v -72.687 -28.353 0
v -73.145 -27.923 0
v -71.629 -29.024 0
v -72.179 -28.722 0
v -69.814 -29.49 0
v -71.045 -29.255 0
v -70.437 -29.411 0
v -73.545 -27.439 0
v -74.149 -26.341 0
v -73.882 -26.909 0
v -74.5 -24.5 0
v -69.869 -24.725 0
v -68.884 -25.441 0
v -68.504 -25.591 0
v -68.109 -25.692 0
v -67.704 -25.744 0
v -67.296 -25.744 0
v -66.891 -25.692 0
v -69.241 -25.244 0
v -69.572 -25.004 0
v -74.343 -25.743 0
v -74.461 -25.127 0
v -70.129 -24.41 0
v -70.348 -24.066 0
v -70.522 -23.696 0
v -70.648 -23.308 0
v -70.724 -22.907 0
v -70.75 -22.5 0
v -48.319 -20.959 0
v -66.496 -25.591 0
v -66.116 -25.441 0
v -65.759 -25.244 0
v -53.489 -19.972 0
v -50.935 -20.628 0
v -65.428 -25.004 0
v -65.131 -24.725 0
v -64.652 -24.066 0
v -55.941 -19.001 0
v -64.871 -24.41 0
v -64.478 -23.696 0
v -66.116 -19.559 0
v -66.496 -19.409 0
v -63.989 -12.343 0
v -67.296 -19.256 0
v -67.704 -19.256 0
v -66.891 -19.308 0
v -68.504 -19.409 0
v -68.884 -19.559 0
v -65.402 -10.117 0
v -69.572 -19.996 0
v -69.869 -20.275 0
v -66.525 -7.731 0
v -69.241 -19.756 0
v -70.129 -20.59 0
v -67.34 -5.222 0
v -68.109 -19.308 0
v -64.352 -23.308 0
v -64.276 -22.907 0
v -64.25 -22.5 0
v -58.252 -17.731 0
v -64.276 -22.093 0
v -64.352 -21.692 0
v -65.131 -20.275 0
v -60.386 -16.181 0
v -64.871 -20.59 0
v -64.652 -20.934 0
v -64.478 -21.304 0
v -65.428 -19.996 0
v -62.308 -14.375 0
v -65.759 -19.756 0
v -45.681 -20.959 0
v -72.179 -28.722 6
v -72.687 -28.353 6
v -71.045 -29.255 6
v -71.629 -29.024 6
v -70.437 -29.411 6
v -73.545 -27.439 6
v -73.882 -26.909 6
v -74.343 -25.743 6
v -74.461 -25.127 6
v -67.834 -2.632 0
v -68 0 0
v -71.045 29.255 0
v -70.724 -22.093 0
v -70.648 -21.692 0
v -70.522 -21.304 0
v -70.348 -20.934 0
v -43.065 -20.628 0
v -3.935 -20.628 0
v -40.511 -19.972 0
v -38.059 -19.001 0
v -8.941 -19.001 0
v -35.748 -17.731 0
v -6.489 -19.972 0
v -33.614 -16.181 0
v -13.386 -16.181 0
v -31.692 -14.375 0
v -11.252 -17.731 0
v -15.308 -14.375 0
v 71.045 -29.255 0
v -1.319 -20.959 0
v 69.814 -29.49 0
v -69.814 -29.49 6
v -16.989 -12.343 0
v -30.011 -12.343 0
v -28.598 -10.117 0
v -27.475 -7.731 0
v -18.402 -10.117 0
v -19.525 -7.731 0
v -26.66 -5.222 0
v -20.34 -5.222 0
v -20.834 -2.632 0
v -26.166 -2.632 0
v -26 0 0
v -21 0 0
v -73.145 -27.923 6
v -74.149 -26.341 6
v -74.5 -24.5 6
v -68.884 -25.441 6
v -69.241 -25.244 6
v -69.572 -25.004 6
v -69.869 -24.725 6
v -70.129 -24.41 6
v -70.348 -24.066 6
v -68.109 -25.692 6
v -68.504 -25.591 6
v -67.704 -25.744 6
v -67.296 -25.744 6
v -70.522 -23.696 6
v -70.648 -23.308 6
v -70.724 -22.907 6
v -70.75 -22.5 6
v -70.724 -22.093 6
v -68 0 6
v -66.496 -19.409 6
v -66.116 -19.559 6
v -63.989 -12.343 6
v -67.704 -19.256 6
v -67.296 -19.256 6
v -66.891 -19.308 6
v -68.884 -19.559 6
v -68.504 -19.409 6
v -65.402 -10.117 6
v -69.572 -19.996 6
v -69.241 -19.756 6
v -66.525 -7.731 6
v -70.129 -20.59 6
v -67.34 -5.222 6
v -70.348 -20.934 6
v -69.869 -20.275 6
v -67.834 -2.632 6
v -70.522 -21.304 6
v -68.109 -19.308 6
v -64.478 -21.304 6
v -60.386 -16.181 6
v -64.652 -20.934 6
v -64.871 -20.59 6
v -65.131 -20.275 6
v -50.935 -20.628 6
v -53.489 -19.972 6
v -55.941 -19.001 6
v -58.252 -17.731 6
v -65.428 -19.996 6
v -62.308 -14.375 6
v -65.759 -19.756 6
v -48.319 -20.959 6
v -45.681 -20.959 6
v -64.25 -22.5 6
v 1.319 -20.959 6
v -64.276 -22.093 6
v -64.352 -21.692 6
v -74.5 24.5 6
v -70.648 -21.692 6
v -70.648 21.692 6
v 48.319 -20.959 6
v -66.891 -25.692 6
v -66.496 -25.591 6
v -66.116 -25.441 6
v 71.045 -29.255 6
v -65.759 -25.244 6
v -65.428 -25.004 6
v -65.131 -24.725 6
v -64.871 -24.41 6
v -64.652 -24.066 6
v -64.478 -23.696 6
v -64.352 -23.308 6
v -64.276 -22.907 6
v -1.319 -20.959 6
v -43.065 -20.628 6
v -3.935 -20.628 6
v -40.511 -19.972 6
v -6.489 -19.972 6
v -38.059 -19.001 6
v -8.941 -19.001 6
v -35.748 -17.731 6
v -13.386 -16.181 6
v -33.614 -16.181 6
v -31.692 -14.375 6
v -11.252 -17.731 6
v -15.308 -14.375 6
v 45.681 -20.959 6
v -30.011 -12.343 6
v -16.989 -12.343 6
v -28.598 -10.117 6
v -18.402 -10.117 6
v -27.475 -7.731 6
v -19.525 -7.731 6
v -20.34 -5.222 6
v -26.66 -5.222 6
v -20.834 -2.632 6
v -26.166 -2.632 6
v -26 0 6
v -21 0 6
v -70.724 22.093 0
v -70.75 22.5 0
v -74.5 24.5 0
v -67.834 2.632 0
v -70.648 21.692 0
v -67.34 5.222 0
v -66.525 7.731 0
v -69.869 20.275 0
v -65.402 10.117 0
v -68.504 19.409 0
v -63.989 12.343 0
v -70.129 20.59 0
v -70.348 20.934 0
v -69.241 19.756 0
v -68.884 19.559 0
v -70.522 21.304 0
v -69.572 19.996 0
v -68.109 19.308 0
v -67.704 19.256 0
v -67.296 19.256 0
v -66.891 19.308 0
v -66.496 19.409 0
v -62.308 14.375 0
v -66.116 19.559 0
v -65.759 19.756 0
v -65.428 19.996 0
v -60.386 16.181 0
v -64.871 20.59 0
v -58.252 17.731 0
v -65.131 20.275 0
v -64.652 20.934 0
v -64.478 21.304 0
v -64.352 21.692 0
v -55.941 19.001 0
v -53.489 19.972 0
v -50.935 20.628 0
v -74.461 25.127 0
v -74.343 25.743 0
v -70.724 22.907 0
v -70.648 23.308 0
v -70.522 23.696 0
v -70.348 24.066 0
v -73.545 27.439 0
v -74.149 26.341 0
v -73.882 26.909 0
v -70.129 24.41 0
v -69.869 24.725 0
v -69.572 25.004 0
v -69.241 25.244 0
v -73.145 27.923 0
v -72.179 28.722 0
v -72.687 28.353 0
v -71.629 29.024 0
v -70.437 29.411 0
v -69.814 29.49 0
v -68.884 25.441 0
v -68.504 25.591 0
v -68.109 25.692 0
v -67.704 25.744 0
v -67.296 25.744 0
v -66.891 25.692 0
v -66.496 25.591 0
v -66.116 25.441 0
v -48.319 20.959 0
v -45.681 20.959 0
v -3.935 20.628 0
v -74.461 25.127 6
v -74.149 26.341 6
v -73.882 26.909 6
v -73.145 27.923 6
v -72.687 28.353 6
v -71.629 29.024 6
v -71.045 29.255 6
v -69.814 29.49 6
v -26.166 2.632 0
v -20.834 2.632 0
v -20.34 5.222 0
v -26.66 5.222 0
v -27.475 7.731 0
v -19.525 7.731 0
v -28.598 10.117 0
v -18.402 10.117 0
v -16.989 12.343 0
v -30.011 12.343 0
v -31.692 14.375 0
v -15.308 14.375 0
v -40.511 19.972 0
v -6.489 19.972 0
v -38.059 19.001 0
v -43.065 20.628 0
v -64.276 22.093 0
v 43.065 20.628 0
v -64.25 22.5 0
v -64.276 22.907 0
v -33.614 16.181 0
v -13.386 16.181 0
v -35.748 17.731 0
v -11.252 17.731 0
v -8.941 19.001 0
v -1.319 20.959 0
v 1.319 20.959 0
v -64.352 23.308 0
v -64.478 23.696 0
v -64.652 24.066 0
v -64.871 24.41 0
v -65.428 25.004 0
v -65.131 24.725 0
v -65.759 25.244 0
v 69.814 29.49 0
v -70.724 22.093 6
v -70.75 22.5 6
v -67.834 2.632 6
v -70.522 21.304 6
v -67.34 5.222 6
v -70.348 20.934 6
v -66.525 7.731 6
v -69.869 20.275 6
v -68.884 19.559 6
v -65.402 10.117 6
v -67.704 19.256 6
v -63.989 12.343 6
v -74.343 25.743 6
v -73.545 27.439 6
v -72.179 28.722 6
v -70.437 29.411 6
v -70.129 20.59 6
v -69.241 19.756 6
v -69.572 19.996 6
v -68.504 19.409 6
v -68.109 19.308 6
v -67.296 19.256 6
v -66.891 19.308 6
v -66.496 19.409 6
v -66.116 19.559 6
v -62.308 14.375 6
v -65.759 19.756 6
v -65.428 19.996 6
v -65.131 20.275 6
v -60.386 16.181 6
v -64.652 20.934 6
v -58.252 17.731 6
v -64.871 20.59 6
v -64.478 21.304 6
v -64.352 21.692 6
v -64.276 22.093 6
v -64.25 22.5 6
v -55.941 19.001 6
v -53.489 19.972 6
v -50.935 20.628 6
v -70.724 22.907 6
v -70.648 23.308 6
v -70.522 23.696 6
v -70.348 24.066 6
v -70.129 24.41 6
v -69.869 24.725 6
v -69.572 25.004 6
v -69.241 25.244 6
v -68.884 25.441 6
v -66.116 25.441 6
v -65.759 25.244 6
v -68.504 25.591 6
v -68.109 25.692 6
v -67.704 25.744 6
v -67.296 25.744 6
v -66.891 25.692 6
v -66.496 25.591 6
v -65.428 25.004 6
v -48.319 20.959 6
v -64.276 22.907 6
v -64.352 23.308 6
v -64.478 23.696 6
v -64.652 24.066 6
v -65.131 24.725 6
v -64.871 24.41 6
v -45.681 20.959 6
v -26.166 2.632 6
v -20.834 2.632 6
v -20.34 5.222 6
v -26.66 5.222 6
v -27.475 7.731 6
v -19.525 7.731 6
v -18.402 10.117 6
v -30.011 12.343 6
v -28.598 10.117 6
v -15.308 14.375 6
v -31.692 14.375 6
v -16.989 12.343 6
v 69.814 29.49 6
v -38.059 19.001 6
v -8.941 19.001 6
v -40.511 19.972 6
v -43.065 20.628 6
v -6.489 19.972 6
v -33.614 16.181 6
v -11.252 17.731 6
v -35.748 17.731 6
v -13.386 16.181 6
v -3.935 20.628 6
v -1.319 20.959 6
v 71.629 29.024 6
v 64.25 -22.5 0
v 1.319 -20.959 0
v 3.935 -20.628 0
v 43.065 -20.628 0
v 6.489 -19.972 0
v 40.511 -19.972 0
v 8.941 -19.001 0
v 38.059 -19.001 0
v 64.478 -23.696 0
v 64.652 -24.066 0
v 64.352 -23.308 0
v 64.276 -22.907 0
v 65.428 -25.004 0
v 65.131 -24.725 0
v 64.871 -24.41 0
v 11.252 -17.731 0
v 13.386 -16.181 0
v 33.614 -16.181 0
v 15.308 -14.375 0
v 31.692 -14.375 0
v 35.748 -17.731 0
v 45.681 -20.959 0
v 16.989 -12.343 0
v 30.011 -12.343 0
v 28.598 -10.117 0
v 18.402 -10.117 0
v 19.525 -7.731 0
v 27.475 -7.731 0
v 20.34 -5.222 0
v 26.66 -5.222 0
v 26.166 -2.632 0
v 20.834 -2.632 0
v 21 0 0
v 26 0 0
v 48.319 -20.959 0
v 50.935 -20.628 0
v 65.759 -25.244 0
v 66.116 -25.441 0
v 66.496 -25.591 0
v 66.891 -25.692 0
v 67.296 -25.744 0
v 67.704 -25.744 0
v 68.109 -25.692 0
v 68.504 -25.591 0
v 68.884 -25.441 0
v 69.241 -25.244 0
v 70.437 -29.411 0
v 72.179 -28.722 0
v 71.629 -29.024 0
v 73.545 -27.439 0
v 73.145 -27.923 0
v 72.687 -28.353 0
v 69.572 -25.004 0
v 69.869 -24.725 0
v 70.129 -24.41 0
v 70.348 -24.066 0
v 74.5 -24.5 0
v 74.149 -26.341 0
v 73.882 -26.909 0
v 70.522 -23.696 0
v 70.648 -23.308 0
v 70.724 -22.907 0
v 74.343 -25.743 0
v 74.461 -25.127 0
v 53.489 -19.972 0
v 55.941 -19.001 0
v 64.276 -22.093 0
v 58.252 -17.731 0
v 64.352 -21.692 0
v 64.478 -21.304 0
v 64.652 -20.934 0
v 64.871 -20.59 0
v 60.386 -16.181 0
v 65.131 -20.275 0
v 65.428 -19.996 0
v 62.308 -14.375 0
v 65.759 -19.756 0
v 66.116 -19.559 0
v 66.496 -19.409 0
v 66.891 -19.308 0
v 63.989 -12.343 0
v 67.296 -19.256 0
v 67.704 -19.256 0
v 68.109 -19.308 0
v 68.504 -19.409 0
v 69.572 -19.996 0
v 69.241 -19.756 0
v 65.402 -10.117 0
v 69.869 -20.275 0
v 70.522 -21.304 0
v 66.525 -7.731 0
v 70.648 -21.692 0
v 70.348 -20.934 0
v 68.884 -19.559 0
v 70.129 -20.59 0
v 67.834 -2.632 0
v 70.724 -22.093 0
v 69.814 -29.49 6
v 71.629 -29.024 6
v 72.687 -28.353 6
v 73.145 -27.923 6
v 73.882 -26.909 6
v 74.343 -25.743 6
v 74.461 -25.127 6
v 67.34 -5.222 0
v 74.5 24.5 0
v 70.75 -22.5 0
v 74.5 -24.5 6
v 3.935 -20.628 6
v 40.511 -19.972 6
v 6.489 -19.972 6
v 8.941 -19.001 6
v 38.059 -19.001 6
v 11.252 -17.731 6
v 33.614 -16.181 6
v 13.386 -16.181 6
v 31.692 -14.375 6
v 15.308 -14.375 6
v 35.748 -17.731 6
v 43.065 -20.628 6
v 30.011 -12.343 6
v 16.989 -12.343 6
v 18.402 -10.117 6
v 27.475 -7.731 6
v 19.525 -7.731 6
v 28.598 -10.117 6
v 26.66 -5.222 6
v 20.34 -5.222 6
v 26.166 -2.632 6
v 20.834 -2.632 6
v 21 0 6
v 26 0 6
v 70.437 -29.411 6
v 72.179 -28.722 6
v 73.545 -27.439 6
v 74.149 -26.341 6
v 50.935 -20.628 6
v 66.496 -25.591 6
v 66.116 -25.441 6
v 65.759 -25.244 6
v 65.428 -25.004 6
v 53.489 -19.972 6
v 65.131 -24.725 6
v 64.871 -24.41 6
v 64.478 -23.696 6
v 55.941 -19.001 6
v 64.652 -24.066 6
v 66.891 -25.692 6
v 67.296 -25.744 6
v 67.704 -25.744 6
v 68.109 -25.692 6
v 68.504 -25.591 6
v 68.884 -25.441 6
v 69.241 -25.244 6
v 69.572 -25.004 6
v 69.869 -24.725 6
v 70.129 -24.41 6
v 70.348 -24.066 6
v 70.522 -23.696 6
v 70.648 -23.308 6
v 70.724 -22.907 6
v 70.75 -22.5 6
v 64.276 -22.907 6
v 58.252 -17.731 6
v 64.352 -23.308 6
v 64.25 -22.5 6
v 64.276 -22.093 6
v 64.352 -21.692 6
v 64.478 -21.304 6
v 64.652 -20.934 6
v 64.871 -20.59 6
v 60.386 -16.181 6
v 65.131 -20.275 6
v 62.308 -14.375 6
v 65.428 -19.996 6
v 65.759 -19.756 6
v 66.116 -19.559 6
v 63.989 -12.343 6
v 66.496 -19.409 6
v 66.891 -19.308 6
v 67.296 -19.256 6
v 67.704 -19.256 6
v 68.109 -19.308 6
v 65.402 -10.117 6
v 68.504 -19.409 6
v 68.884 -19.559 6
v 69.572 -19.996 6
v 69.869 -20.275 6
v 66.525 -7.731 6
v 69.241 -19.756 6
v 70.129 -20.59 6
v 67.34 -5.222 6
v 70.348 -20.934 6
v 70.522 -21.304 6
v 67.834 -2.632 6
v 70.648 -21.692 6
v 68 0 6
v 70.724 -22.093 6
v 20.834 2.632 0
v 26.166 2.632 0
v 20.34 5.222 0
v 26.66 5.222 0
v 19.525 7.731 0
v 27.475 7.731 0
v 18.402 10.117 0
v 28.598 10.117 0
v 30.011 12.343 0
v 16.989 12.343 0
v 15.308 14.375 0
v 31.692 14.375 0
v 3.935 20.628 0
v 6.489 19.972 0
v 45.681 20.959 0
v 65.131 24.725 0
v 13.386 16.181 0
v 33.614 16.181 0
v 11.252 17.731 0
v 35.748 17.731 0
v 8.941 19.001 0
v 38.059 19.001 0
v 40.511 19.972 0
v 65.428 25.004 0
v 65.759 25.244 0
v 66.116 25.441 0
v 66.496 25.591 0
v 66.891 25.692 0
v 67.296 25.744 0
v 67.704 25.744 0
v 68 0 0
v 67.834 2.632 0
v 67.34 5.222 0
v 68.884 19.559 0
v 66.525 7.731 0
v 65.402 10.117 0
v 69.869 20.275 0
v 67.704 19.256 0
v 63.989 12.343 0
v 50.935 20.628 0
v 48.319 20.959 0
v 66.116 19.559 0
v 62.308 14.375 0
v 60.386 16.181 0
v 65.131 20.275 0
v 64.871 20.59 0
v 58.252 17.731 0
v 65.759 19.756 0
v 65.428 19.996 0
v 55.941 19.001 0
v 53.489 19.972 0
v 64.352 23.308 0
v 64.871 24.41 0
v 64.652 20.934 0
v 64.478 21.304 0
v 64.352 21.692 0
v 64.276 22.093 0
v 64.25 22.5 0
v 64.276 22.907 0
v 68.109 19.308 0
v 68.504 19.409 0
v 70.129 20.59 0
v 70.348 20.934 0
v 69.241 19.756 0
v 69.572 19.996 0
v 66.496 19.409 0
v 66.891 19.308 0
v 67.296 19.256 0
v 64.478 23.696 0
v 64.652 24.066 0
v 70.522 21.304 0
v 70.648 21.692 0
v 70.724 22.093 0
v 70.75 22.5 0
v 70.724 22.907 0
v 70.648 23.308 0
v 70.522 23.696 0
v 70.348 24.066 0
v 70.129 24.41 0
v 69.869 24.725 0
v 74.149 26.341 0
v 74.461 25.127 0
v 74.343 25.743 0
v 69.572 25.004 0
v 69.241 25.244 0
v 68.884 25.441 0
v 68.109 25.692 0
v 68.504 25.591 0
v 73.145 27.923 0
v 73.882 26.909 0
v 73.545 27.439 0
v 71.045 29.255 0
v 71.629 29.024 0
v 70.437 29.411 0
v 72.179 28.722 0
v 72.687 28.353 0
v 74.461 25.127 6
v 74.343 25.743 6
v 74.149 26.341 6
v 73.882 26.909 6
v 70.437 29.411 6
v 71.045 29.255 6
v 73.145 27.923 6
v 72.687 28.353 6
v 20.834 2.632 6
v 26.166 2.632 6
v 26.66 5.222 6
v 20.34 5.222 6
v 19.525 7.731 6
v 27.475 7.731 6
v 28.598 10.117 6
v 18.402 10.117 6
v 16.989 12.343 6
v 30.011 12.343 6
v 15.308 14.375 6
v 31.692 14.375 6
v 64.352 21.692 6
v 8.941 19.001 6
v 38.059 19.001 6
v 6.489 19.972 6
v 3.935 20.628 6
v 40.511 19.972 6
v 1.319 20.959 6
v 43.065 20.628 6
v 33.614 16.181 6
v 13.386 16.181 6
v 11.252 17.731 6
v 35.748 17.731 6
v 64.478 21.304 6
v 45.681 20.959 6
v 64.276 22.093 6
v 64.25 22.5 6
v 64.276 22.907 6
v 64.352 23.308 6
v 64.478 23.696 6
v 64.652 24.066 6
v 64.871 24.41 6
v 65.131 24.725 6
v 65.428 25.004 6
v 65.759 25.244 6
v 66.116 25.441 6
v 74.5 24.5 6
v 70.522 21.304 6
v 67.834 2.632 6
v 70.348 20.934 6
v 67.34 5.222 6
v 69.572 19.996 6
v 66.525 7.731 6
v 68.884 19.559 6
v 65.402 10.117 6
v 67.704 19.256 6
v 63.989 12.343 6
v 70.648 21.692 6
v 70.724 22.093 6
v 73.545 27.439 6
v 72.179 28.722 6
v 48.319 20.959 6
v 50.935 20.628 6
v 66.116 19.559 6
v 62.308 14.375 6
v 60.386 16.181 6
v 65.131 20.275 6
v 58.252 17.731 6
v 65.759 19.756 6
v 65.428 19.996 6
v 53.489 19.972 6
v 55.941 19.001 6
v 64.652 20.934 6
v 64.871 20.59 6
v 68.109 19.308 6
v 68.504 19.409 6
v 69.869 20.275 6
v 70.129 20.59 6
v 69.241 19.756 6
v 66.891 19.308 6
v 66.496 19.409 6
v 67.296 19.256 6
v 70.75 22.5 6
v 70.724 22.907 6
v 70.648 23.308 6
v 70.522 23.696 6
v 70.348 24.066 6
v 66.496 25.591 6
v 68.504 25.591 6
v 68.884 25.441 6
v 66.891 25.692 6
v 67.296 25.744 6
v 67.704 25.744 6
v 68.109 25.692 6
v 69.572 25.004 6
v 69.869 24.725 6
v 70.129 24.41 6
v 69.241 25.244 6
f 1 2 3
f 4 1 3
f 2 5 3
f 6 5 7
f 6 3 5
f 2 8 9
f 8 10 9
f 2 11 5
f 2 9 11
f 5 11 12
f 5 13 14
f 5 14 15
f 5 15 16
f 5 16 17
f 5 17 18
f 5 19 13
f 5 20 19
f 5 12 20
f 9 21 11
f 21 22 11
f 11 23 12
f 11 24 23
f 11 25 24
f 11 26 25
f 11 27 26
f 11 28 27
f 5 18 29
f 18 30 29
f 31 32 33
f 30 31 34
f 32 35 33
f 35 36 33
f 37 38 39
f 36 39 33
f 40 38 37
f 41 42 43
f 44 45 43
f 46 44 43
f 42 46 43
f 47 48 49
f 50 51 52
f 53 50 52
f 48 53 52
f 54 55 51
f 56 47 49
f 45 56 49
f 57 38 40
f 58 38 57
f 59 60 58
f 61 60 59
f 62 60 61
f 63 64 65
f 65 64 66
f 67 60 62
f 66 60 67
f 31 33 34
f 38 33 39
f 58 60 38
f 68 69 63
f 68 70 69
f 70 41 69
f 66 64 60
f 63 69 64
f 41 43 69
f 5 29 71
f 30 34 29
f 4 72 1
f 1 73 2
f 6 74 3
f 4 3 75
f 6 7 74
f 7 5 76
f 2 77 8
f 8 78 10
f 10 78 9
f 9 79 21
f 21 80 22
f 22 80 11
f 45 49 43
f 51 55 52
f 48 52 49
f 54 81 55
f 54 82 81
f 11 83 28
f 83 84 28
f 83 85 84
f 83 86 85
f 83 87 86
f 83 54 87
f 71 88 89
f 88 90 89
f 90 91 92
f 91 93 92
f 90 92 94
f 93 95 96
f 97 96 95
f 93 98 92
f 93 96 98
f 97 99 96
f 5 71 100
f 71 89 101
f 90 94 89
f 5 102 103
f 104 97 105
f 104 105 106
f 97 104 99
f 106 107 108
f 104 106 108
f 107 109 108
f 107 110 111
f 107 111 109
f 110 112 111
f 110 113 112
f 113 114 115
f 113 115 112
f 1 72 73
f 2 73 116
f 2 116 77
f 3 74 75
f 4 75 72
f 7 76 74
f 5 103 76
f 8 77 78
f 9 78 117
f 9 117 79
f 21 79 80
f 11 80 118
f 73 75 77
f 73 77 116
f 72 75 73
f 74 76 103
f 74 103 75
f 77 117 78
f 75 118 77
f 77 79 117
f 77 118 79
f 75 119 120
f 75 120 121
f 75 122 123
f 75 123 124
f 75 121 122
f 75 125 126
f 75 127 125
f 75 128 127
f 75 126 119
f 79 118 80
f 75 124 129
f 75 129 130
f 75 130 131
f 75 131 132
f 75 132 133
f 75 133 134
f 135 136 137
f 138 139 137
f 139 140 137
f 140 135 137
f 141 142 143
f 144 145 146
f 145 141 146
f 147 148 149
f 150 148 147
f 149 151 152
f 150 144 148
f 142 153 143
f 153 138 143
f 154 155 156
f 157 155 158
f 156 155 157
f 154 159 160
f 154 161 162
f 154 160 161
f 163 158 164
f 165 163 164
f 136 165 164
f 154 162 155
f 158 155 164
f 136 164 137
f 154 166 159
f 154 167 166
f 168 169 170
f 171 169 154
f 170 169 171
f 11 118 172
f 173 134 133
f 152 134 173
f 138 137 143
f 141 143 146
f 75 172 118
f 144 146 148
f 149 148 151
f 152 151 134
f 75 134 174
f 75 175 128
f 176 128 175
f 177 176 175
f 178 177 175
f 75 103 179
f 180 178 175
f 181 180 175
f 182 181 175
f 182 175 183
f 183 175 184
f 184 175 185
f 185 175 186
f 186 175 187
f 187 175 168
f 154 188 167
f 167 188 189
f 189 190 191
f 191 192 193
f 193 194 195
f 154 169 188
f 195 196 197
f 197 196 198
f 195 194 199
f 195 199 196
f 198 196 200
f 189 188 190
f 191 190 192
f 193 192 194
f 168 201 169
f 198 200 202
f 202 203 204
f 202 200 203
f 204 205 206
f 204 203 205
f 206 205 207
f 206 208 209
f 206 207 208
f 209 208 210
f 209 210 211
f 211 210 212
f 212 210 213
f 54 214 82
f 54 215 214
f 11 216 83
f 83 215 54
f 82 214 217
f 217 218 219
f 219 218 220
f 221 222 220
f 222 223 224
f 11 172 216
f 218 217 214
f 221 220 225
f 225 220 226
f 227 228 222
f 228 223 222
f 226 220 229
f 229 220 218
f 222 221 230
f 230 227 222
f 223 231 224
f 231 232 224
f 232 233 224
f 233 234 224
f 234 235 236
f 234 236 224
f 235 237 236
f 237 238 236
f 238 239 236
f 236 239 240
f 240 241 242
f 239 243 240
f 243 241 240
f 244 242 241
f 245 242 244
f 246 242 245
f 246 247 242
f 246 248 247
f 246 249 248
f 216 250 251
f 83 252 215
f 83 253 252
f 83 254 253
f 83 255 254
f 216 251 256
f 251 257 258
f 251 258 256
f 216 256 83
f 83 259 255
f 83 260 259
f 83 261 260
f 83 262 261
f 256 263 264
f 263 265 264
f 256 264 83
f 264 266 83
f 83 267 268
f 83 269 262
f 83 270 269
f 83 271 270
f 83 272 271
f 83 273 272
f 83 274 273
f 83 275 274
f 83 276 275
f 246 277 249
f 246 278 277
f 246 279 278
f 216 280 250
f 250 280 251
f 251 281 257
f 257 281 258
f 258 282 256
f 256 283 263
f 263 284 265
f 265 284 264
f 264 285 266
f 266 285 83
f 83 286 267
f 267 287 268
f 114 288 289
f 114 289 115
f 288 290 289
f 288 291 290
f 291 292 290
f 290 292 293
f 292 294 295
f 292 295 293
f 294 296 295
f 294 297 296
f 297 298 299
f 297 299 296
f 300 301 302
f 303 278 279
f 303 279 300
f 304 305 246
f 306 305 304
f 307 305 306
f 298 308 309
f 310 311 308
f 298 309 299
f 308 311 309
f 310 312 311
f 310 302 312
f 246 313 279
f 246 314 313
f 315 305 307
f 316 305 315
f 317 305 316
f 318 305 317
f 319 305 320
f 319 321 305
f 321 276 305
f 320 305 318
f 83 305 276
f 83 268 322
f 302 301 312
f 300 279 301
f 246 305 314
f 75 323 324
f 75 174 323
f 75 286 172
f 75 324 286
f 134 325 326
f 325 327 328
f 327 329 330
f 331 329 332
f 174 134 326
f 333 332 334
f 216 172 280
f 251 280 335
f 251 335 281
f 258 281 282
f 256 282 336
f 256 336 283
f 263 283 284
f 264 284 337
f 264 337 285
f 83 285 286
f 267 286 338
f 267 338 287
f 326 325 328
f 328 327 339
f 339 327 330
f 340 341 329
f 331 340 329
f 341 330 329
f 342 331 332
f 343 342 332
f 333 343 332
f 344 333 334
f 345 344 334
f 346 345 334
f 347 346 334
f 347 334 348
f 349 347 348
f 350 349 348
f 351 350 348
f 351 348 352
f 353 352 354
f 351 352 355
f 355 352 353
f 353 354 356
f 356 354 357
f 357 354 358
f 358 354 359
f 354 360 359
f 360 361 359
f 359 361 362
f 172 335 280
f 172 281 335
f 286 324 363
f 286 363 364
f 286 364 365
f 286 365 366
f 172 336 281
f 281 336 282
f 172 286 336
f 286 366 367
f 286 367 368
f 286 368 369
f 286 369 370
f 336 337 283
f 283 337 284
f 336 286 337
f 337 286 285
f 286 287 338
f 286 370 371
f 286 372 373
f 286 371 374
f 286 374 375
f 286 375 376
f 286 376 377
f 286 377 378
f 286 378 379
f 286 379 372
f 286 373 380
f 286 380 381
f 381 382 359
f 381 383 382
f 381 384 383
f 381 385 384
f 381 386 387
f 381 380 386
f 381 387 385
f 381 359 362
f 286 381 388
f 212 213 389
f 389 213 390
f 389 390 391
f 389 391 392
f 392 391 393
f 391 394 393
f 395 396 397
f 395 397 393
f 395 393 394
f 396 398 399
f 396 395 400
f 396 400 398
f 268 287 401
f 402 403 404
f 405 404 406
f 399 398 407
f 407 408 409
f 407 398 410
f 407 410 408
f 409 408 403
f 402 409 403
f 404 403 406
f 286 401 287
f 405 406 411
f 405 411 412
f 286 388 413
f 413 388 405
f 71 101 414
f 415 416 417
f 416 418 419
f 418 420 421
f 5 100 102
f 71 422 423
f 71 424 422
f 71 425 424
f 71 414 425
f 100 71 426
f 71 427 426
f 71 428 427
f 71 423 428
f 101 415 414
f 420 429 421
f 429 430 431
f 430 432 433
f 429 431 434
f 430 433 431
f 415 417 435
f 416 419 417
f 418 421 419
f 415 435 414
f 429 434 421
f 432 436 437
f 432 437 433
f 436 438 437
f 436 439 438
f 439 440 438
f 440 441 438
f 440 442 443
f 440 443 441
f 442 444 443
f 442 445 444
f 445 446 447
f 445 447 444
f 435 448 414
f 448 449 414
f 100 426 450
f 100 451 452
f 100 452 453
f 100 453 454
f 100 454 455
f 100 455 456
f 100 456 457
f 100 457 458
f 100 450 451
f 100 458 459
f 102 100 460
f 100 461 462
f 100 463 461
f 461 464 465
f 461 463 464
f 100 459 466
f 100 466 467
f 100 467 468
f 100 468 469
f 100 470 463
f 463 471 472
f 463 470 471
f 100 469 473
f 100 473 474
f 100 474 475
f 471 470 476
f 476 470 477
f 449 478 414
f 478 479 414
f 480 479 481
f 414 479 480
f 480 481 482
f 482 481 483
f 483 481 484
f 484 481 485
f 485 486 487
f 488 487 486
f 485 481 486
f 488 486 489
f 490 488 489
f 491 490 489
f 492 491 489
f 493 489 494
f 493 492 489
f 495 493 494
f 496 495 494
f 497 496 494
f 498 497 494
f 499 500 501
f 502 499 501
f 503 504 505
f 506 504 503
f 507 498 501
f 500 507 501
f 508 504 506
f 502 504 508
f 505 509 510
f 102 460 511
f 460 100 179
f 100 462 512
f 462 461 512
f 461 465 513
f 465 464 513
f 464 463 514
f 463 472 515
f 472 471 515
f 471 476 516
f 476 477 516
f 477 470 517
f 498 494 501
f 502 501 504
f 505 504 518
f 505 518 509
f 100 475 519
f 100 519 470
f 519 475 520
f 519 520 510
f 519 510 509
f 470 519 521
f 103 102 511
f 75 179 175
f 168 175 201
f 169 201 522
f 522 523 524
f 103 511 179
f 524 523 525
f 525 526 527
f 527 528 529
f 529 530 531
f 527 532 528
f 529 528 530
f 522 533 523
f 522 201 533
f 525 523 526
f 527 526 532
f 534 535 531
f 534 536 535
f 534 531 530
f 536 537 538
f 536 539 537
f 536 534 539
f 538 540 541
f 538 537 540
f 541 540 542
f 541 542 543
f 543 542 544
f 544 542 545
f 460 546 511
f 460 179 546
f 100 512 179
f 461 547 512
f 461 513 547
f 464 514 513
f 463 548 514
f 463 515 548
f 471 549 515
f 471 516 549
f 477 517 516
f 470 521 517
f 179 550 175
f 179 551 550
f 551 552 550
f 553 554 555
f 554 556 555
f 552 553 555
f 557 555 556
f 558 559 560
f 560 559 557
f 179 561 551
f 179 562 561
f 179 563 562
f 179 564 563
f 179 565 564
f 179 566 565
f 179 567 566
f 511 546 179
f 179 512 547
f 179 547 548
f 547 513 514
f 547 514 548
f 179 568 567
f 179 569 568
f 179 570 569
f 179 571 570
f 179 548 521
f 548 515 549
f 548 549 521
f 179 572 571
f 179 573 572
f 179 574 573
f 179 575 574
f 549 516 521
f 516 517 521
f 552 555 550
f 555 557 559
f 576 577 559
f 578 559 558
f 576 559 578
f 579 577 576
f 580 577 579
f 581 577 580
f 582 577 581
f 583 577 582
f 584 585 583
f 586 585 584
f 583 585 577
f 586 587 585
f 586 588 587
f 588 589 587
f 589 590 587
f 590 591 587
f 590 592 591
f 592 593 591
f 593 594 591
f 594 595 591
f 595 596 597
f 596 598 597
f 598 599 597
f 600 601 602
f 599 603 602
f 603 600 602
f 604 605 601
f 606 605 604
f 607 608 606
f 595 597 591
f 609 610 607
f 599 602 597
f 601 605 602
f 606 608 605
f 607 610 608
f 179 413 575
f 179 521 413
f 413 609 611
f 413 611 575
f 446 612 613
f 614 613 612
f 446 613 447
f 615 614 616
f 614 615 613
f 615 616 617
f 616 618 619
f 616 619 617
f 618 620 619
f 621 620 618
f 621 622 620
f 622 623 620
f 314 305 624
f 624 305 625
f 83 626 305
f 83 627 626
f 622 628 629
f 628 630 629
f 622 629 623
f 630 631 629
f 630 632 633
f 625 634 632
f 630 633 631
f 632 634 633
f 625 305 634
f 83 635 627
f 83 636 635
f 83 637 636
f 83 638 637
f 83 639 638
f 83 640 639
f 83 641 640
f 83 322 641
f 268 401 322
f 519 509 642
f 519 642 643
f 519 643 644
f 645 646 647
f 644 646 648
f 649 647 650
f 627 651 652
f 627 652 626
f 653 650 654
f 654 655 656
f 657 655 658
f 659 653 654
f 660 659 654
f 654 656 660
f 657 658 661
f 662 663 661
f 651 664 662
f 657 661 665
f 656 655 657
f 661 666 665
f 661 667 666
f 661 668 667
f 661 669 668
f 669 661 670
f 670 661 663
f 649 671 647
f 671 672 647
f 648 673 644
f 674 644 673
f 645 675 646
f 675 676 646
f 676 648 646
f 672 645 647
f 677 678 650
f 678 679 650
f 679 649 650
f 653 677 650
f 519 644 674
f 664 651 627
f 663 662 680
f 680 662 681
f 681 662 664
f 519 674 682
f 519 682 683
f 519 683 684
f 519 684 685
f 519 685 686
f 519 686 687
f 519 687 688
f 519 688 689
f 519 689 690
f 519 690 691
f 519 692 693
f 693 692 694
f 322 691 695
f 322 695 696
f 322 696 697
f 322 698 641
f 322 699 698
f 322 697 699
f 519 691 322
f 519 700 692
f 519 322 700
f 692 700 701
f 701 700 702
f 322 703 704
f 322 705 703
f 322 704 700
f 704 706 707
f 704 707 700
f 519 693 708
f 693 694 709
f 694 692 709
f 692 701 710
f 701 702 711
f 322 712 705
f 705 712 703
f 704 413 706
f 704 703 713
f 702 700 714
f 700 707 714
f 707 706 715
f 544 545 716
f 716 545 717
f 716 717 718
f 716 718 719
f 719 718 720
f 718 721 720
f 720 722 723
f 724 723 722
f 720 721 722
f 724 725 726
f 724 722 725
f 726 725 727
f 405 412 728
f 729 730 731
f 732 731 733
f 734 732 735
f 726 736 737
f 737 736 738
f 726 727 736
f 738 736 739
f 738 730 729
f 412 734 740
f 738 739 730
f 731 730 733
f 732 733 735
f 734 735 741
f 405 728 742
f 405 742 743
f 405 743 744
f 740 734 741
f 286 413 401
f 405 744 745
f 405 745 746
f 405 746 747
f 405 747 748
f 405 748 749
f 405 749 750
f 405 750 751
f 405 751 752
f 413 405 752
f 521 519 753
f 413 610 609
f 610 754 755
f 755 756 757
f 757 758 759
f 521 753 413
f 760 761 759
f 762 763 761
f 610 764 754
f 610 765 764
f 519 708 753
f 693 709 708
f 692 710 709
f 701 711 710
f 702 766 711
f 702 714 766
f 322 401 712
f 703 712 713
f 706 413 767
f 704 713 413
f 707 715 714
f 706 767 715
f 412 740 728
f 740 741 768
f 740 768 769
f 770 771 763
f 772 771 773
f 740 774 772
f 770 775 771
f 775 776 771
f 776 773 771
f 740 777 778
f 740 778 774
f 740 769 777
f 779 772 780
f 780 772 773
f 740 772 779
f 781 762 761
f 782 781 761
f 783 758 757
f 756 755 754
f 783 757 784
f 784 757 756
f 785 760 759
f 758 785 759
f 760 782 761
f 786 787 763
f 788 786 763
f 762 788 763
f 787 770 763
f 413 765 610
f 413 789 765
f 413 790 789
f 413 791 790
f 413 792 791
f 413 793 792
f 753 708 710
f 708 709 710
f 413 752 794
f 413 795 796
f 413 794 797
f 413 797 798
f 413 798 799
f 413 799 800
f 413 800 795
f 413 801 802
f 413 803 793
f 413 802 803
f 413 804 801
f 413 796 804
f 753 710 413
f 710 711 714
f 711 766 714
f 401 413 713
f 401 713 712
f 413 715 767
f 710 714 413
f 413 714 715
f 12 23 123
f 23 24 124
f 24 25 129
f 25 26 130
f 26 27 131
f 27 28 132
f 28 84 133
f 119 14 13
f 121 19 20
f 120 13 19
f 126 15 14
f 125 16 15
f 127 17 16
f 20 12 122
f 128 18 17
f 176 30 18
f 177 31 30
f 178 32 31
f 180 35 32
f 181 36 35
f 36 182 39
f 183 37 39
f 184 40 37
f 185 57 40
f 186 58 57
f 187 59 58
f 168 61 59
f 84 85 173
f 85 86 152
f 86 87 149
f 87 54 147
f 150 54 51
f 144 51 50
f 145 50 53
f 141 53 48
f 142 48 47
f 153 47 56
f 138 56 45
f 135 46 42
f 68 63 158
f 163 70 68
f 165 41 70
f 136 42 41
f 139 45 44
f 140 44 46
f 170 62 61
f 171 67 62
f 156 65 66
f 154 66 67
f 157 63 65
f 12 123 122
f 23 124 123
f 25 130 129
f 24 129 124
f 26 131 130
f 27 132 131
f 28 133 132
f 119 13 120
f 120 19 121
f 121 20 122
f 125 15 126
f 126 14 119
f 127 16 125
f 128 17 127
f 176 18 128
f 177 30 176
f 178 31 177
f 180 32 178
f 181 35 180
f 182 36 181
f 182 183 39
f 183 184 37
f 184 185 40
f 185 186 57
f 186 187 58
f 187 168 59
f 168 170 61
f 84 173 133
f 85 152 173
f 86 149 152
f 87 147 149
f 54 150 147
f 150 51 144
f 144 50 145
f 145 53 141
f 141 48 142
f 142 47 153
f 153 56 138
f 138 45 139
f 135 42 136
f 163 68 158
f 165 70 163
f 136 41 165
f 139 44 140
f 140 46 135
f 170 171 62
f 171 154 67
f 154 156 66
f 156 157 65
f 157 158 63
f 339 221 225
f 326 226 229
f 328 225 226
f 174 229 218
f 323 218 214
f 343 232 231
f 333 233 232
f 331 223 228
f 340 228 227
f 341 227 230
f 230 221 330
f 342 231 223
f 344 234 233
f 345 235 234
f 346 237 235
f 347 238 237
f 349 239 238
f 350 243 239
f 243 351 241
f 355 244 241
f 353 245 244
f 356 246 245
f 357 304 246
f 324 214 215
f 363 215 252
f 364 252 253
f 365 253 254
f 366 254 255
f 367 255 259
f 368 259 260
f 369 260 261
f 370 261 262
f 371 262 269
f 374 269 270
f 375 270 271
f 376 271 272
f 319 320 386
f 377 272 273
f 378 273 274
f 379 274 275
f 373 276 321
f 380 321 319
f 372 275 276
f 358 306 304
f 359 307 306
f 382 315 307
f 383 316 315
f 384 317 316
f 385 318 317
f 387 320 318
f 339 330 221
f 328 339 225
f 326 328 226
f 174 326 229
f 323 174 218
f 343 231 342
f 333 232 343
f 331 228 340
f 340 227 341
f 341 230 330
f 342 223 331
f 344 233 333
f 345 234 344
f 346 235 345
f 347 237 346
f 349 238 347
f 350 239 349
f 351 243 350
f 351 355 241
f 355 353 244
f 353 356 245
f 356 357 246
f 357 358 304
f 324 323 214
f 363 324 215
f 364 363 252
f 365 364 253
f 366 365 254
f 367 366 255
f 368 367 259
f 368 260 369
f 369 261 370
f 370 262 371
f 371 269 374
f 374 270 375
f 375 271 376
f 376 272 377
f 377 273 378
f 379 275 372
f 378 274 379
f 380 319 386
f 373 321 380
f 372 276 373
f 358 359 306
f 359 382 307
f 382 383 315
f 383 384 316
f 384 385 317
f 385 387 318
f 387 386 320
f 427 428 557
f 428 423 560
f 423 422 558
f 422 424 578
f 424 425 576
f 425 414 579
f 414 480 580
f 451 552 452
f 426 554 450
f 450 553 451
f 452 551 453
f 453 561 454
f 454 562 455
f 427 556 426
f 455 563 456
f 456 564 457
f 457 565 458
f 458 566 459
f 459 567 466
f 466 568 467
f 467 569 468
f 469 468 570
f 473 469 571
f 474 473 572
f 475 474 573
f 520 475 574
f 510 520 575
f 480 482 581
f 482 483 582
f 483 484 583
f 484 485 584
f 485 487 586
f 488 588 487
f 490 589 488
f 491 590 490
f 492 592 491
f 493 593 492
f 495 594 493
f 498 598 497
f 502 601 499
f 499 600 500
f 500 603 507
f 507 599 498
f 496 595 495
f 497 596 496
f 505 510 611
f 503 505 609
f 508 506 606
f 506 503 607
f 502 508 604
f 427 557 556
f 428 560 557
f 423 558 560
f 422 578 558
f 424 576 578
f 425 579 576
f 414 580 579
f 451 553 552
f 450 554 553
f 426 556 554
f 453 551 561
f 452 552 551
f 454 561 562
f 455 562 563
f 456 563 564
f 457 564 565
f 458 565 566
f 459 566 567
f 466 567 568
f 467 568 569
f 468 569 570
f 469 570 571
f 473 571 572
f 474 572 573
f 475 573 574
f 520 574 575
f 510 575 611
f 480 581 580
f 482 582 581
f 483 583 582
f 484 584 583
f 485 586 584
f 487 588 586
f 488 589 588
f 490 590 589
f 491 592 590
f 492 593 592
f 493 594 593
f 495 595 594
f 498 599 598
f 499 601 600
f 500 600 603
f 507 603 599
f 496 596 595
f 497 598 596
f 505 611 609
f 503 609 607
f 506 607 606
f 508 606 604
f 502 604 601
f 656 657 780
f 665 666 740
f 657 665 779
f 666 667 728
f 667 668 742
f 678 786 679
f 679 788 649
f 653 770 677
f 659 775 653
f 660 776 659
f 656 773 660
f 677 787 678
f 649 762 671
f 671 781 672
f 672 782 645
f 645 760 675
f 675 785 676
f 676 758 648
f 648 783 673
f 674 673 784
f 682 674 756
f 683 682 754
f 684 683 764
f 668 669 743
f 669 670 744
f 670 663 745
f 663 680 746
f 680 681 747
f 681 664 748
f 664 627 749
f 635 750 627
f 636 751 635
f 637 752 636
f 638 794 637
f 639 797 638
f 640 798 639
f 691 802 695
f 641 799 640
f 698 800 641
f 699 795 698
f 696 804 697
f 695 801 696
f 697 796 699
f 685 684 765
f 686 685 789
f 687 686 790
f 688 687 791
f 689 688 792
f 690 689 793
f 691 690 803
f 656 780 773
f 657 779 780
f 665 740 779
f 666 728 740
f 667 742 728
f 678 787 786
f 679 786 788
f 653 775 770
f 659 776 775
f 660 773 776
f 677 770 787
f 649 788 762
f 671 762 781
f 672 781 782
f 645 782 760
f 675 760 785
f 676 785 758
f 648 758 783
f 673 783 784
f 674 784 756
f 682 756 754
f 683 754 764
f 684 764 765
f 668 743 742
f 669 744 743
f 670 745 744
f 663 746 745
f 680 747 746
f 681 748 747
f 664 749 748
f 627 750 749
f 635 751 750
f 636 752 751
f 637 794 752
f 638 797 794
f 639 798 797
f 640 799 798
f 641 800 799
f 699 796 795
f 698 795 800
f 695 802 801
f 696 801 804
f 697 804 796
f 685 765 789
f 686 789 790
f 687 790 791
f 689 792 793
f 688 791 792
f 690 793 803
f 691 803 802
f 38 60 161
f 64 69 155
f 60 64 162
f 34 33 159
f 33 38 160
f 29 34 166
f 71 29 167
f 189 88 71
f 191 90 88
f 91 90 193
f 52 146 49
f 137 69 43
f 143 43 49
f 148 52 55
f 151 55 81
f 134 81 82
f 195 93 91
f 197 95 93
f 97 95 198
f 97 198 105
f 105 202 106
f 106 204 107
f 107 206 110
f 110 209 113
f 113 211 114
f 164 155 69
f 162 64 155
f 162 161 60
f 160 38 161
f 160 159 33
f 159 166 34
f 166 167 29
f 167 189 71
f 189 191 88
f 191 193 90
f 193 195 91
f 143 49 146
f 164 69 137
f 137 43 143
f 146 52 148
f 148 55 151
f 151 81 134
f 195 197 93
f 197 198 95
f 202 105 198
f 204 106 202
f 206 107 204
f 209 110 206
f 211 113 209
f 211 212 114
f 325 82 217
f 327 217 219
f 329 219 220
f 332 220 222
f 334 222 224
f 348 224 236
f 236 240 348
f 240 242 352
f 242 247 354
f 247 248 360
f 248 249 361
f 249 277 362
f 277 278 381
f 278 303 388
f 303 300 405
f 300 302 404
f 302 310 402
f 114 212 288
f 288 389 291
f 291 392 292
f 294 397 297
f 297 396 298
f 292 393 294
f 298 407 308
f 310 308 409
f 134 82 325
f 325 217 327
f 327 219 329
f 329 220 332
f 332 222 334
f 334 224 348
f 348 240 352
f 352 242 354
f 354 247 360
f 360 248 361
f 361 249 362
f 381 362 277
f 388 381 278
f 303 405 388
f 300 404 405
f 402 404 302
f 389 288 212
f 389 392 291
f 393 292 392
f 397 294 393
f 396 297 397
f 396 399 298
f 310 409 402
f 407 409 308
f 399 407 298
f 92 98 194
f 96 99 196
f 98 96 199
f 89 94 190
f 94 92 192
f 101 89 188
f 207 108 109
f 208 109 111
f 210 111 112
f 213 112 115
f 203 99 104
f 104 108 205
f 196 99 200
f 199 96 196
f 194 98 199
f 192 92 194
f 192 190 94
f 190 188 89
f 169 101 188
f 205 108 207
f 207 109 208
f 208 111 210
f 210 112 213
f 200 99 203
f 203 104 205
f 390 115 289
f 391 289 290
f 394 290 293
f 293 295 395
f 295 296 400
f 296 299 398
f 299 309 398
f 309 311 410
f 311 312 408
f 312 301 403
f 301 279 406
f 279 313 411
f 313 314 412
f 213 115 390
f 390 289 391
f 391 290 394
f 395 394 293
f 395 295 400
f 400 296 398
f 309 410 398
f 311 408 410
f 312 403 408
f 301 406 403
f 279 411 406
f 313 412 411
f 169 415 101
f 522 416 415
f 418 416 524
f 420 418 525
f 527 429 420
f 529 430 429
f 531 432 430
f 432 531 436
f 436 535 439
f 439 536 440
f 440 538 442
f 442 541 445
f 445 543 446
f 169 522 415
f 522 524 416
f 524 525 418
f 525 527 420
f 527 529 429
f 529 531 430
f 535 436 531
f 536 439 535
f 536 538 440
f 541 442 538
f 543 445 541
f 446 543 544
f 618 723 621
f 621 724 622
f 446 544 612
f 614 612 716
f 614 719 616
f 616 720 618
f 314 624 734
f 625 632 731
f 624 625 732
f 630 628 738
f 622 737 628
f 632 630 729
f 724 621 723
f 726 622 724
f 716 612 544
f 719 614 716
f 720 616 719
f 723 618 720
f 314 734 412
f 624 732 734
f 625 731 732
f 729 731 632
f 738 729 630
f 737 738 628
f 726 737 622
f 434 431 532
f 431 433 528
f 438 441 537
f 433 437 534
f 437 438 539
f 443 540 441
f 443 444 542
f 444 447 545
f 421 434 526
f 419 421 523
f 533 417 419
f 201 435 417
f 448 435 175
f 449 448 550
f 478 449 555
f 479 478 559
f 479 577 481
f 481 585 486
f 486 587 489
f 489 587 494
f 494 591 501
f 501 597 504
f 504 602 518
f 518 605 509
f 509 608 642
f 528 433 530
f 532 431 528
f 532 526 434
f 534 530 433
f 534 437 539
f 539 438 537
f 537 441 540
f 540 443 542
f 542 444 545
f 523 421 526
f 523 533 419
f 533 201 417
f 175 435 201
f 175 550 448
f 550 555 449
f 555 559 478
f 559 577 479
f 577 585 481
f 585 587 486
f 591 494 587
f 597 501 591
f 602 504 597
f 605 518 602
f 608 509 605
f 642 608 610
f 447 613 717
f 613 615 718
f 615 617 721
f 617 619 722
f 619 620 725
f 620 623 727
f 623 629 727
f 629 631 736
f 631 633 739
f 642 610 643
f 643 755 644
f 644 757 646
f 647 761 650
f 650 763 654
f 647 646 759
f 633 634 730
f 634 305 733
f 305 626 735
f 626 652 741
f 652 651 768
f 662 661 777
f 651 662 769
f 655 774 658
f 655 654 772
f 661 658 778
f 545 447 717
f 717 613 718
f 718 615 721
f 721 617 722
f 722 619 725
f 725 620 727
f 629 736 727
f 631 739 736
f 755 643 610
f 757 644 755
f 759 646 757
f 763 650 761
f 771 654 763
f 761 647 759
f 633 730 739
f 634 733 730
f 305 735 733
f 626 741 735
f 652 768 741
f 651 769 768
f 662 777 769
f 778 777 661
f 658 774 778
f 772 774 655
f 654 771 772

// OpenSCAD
$fn = 50;

difference() {
	union() {
		hull() {
			translate(v = [-69.5, 24.5, 0]) {
				cylinder(h = 6, r = 5);
			}
			translate(v = [69.5, 24.5, 0]) {
				cylinder(h = 6, r = 5);
			}
			translate(v = [-69.5, -24.5, 0]) {
				cylinder(h = 6, r = 5);
			}
			translate(v = [69.5, -24.5, 0]) {
				cylinder(h = 6, r = 5);
			}
		}
	}
	union() {
		translate(v = [-67.5, -22.5, -100.0]) {
			cylinder(h = 200, r = 3.25);
		}
		translate(v = [-67.5, 22.5, -100.0]) {
			cylinder(h = 200, r = 3.25);
		}
		translate(v = [67.5, -22.5, -100.0]) {
			cylinder(h = 200, r = 3.25);
		}
		translate(v = [67.5, 22.5, -100.0]) {
			cylinder(h = 200, r = 3.25);
		}
		translate(v = [-67.5, -22.5, -100.0]) {
			cylinder(h = 200, r = 1.8);
		}
		translate(v = [-67.5, 22.5, -100.0]) {
			cylinder(h = 200, r = 1.8);
		}
		translate(v = [67.5, -22.5, -100.0]) {
			cylinder(h = 200, r = 1.8);
		}
		translate(v = [67.5, 22.5, -100.0]) {
			cylinder(h = 200, r = 1.8);
		}
		translate(v = [-47.0, 0, 0.0]) {
			cylinder(h = 6, r = 21.0);
		}
		cylinder(h = 6, r = 21.0);
		translate(v = [47.0, 0, 0.0]) {
			cylinder(h = 6, r = 21.0);
		}
	}
}
